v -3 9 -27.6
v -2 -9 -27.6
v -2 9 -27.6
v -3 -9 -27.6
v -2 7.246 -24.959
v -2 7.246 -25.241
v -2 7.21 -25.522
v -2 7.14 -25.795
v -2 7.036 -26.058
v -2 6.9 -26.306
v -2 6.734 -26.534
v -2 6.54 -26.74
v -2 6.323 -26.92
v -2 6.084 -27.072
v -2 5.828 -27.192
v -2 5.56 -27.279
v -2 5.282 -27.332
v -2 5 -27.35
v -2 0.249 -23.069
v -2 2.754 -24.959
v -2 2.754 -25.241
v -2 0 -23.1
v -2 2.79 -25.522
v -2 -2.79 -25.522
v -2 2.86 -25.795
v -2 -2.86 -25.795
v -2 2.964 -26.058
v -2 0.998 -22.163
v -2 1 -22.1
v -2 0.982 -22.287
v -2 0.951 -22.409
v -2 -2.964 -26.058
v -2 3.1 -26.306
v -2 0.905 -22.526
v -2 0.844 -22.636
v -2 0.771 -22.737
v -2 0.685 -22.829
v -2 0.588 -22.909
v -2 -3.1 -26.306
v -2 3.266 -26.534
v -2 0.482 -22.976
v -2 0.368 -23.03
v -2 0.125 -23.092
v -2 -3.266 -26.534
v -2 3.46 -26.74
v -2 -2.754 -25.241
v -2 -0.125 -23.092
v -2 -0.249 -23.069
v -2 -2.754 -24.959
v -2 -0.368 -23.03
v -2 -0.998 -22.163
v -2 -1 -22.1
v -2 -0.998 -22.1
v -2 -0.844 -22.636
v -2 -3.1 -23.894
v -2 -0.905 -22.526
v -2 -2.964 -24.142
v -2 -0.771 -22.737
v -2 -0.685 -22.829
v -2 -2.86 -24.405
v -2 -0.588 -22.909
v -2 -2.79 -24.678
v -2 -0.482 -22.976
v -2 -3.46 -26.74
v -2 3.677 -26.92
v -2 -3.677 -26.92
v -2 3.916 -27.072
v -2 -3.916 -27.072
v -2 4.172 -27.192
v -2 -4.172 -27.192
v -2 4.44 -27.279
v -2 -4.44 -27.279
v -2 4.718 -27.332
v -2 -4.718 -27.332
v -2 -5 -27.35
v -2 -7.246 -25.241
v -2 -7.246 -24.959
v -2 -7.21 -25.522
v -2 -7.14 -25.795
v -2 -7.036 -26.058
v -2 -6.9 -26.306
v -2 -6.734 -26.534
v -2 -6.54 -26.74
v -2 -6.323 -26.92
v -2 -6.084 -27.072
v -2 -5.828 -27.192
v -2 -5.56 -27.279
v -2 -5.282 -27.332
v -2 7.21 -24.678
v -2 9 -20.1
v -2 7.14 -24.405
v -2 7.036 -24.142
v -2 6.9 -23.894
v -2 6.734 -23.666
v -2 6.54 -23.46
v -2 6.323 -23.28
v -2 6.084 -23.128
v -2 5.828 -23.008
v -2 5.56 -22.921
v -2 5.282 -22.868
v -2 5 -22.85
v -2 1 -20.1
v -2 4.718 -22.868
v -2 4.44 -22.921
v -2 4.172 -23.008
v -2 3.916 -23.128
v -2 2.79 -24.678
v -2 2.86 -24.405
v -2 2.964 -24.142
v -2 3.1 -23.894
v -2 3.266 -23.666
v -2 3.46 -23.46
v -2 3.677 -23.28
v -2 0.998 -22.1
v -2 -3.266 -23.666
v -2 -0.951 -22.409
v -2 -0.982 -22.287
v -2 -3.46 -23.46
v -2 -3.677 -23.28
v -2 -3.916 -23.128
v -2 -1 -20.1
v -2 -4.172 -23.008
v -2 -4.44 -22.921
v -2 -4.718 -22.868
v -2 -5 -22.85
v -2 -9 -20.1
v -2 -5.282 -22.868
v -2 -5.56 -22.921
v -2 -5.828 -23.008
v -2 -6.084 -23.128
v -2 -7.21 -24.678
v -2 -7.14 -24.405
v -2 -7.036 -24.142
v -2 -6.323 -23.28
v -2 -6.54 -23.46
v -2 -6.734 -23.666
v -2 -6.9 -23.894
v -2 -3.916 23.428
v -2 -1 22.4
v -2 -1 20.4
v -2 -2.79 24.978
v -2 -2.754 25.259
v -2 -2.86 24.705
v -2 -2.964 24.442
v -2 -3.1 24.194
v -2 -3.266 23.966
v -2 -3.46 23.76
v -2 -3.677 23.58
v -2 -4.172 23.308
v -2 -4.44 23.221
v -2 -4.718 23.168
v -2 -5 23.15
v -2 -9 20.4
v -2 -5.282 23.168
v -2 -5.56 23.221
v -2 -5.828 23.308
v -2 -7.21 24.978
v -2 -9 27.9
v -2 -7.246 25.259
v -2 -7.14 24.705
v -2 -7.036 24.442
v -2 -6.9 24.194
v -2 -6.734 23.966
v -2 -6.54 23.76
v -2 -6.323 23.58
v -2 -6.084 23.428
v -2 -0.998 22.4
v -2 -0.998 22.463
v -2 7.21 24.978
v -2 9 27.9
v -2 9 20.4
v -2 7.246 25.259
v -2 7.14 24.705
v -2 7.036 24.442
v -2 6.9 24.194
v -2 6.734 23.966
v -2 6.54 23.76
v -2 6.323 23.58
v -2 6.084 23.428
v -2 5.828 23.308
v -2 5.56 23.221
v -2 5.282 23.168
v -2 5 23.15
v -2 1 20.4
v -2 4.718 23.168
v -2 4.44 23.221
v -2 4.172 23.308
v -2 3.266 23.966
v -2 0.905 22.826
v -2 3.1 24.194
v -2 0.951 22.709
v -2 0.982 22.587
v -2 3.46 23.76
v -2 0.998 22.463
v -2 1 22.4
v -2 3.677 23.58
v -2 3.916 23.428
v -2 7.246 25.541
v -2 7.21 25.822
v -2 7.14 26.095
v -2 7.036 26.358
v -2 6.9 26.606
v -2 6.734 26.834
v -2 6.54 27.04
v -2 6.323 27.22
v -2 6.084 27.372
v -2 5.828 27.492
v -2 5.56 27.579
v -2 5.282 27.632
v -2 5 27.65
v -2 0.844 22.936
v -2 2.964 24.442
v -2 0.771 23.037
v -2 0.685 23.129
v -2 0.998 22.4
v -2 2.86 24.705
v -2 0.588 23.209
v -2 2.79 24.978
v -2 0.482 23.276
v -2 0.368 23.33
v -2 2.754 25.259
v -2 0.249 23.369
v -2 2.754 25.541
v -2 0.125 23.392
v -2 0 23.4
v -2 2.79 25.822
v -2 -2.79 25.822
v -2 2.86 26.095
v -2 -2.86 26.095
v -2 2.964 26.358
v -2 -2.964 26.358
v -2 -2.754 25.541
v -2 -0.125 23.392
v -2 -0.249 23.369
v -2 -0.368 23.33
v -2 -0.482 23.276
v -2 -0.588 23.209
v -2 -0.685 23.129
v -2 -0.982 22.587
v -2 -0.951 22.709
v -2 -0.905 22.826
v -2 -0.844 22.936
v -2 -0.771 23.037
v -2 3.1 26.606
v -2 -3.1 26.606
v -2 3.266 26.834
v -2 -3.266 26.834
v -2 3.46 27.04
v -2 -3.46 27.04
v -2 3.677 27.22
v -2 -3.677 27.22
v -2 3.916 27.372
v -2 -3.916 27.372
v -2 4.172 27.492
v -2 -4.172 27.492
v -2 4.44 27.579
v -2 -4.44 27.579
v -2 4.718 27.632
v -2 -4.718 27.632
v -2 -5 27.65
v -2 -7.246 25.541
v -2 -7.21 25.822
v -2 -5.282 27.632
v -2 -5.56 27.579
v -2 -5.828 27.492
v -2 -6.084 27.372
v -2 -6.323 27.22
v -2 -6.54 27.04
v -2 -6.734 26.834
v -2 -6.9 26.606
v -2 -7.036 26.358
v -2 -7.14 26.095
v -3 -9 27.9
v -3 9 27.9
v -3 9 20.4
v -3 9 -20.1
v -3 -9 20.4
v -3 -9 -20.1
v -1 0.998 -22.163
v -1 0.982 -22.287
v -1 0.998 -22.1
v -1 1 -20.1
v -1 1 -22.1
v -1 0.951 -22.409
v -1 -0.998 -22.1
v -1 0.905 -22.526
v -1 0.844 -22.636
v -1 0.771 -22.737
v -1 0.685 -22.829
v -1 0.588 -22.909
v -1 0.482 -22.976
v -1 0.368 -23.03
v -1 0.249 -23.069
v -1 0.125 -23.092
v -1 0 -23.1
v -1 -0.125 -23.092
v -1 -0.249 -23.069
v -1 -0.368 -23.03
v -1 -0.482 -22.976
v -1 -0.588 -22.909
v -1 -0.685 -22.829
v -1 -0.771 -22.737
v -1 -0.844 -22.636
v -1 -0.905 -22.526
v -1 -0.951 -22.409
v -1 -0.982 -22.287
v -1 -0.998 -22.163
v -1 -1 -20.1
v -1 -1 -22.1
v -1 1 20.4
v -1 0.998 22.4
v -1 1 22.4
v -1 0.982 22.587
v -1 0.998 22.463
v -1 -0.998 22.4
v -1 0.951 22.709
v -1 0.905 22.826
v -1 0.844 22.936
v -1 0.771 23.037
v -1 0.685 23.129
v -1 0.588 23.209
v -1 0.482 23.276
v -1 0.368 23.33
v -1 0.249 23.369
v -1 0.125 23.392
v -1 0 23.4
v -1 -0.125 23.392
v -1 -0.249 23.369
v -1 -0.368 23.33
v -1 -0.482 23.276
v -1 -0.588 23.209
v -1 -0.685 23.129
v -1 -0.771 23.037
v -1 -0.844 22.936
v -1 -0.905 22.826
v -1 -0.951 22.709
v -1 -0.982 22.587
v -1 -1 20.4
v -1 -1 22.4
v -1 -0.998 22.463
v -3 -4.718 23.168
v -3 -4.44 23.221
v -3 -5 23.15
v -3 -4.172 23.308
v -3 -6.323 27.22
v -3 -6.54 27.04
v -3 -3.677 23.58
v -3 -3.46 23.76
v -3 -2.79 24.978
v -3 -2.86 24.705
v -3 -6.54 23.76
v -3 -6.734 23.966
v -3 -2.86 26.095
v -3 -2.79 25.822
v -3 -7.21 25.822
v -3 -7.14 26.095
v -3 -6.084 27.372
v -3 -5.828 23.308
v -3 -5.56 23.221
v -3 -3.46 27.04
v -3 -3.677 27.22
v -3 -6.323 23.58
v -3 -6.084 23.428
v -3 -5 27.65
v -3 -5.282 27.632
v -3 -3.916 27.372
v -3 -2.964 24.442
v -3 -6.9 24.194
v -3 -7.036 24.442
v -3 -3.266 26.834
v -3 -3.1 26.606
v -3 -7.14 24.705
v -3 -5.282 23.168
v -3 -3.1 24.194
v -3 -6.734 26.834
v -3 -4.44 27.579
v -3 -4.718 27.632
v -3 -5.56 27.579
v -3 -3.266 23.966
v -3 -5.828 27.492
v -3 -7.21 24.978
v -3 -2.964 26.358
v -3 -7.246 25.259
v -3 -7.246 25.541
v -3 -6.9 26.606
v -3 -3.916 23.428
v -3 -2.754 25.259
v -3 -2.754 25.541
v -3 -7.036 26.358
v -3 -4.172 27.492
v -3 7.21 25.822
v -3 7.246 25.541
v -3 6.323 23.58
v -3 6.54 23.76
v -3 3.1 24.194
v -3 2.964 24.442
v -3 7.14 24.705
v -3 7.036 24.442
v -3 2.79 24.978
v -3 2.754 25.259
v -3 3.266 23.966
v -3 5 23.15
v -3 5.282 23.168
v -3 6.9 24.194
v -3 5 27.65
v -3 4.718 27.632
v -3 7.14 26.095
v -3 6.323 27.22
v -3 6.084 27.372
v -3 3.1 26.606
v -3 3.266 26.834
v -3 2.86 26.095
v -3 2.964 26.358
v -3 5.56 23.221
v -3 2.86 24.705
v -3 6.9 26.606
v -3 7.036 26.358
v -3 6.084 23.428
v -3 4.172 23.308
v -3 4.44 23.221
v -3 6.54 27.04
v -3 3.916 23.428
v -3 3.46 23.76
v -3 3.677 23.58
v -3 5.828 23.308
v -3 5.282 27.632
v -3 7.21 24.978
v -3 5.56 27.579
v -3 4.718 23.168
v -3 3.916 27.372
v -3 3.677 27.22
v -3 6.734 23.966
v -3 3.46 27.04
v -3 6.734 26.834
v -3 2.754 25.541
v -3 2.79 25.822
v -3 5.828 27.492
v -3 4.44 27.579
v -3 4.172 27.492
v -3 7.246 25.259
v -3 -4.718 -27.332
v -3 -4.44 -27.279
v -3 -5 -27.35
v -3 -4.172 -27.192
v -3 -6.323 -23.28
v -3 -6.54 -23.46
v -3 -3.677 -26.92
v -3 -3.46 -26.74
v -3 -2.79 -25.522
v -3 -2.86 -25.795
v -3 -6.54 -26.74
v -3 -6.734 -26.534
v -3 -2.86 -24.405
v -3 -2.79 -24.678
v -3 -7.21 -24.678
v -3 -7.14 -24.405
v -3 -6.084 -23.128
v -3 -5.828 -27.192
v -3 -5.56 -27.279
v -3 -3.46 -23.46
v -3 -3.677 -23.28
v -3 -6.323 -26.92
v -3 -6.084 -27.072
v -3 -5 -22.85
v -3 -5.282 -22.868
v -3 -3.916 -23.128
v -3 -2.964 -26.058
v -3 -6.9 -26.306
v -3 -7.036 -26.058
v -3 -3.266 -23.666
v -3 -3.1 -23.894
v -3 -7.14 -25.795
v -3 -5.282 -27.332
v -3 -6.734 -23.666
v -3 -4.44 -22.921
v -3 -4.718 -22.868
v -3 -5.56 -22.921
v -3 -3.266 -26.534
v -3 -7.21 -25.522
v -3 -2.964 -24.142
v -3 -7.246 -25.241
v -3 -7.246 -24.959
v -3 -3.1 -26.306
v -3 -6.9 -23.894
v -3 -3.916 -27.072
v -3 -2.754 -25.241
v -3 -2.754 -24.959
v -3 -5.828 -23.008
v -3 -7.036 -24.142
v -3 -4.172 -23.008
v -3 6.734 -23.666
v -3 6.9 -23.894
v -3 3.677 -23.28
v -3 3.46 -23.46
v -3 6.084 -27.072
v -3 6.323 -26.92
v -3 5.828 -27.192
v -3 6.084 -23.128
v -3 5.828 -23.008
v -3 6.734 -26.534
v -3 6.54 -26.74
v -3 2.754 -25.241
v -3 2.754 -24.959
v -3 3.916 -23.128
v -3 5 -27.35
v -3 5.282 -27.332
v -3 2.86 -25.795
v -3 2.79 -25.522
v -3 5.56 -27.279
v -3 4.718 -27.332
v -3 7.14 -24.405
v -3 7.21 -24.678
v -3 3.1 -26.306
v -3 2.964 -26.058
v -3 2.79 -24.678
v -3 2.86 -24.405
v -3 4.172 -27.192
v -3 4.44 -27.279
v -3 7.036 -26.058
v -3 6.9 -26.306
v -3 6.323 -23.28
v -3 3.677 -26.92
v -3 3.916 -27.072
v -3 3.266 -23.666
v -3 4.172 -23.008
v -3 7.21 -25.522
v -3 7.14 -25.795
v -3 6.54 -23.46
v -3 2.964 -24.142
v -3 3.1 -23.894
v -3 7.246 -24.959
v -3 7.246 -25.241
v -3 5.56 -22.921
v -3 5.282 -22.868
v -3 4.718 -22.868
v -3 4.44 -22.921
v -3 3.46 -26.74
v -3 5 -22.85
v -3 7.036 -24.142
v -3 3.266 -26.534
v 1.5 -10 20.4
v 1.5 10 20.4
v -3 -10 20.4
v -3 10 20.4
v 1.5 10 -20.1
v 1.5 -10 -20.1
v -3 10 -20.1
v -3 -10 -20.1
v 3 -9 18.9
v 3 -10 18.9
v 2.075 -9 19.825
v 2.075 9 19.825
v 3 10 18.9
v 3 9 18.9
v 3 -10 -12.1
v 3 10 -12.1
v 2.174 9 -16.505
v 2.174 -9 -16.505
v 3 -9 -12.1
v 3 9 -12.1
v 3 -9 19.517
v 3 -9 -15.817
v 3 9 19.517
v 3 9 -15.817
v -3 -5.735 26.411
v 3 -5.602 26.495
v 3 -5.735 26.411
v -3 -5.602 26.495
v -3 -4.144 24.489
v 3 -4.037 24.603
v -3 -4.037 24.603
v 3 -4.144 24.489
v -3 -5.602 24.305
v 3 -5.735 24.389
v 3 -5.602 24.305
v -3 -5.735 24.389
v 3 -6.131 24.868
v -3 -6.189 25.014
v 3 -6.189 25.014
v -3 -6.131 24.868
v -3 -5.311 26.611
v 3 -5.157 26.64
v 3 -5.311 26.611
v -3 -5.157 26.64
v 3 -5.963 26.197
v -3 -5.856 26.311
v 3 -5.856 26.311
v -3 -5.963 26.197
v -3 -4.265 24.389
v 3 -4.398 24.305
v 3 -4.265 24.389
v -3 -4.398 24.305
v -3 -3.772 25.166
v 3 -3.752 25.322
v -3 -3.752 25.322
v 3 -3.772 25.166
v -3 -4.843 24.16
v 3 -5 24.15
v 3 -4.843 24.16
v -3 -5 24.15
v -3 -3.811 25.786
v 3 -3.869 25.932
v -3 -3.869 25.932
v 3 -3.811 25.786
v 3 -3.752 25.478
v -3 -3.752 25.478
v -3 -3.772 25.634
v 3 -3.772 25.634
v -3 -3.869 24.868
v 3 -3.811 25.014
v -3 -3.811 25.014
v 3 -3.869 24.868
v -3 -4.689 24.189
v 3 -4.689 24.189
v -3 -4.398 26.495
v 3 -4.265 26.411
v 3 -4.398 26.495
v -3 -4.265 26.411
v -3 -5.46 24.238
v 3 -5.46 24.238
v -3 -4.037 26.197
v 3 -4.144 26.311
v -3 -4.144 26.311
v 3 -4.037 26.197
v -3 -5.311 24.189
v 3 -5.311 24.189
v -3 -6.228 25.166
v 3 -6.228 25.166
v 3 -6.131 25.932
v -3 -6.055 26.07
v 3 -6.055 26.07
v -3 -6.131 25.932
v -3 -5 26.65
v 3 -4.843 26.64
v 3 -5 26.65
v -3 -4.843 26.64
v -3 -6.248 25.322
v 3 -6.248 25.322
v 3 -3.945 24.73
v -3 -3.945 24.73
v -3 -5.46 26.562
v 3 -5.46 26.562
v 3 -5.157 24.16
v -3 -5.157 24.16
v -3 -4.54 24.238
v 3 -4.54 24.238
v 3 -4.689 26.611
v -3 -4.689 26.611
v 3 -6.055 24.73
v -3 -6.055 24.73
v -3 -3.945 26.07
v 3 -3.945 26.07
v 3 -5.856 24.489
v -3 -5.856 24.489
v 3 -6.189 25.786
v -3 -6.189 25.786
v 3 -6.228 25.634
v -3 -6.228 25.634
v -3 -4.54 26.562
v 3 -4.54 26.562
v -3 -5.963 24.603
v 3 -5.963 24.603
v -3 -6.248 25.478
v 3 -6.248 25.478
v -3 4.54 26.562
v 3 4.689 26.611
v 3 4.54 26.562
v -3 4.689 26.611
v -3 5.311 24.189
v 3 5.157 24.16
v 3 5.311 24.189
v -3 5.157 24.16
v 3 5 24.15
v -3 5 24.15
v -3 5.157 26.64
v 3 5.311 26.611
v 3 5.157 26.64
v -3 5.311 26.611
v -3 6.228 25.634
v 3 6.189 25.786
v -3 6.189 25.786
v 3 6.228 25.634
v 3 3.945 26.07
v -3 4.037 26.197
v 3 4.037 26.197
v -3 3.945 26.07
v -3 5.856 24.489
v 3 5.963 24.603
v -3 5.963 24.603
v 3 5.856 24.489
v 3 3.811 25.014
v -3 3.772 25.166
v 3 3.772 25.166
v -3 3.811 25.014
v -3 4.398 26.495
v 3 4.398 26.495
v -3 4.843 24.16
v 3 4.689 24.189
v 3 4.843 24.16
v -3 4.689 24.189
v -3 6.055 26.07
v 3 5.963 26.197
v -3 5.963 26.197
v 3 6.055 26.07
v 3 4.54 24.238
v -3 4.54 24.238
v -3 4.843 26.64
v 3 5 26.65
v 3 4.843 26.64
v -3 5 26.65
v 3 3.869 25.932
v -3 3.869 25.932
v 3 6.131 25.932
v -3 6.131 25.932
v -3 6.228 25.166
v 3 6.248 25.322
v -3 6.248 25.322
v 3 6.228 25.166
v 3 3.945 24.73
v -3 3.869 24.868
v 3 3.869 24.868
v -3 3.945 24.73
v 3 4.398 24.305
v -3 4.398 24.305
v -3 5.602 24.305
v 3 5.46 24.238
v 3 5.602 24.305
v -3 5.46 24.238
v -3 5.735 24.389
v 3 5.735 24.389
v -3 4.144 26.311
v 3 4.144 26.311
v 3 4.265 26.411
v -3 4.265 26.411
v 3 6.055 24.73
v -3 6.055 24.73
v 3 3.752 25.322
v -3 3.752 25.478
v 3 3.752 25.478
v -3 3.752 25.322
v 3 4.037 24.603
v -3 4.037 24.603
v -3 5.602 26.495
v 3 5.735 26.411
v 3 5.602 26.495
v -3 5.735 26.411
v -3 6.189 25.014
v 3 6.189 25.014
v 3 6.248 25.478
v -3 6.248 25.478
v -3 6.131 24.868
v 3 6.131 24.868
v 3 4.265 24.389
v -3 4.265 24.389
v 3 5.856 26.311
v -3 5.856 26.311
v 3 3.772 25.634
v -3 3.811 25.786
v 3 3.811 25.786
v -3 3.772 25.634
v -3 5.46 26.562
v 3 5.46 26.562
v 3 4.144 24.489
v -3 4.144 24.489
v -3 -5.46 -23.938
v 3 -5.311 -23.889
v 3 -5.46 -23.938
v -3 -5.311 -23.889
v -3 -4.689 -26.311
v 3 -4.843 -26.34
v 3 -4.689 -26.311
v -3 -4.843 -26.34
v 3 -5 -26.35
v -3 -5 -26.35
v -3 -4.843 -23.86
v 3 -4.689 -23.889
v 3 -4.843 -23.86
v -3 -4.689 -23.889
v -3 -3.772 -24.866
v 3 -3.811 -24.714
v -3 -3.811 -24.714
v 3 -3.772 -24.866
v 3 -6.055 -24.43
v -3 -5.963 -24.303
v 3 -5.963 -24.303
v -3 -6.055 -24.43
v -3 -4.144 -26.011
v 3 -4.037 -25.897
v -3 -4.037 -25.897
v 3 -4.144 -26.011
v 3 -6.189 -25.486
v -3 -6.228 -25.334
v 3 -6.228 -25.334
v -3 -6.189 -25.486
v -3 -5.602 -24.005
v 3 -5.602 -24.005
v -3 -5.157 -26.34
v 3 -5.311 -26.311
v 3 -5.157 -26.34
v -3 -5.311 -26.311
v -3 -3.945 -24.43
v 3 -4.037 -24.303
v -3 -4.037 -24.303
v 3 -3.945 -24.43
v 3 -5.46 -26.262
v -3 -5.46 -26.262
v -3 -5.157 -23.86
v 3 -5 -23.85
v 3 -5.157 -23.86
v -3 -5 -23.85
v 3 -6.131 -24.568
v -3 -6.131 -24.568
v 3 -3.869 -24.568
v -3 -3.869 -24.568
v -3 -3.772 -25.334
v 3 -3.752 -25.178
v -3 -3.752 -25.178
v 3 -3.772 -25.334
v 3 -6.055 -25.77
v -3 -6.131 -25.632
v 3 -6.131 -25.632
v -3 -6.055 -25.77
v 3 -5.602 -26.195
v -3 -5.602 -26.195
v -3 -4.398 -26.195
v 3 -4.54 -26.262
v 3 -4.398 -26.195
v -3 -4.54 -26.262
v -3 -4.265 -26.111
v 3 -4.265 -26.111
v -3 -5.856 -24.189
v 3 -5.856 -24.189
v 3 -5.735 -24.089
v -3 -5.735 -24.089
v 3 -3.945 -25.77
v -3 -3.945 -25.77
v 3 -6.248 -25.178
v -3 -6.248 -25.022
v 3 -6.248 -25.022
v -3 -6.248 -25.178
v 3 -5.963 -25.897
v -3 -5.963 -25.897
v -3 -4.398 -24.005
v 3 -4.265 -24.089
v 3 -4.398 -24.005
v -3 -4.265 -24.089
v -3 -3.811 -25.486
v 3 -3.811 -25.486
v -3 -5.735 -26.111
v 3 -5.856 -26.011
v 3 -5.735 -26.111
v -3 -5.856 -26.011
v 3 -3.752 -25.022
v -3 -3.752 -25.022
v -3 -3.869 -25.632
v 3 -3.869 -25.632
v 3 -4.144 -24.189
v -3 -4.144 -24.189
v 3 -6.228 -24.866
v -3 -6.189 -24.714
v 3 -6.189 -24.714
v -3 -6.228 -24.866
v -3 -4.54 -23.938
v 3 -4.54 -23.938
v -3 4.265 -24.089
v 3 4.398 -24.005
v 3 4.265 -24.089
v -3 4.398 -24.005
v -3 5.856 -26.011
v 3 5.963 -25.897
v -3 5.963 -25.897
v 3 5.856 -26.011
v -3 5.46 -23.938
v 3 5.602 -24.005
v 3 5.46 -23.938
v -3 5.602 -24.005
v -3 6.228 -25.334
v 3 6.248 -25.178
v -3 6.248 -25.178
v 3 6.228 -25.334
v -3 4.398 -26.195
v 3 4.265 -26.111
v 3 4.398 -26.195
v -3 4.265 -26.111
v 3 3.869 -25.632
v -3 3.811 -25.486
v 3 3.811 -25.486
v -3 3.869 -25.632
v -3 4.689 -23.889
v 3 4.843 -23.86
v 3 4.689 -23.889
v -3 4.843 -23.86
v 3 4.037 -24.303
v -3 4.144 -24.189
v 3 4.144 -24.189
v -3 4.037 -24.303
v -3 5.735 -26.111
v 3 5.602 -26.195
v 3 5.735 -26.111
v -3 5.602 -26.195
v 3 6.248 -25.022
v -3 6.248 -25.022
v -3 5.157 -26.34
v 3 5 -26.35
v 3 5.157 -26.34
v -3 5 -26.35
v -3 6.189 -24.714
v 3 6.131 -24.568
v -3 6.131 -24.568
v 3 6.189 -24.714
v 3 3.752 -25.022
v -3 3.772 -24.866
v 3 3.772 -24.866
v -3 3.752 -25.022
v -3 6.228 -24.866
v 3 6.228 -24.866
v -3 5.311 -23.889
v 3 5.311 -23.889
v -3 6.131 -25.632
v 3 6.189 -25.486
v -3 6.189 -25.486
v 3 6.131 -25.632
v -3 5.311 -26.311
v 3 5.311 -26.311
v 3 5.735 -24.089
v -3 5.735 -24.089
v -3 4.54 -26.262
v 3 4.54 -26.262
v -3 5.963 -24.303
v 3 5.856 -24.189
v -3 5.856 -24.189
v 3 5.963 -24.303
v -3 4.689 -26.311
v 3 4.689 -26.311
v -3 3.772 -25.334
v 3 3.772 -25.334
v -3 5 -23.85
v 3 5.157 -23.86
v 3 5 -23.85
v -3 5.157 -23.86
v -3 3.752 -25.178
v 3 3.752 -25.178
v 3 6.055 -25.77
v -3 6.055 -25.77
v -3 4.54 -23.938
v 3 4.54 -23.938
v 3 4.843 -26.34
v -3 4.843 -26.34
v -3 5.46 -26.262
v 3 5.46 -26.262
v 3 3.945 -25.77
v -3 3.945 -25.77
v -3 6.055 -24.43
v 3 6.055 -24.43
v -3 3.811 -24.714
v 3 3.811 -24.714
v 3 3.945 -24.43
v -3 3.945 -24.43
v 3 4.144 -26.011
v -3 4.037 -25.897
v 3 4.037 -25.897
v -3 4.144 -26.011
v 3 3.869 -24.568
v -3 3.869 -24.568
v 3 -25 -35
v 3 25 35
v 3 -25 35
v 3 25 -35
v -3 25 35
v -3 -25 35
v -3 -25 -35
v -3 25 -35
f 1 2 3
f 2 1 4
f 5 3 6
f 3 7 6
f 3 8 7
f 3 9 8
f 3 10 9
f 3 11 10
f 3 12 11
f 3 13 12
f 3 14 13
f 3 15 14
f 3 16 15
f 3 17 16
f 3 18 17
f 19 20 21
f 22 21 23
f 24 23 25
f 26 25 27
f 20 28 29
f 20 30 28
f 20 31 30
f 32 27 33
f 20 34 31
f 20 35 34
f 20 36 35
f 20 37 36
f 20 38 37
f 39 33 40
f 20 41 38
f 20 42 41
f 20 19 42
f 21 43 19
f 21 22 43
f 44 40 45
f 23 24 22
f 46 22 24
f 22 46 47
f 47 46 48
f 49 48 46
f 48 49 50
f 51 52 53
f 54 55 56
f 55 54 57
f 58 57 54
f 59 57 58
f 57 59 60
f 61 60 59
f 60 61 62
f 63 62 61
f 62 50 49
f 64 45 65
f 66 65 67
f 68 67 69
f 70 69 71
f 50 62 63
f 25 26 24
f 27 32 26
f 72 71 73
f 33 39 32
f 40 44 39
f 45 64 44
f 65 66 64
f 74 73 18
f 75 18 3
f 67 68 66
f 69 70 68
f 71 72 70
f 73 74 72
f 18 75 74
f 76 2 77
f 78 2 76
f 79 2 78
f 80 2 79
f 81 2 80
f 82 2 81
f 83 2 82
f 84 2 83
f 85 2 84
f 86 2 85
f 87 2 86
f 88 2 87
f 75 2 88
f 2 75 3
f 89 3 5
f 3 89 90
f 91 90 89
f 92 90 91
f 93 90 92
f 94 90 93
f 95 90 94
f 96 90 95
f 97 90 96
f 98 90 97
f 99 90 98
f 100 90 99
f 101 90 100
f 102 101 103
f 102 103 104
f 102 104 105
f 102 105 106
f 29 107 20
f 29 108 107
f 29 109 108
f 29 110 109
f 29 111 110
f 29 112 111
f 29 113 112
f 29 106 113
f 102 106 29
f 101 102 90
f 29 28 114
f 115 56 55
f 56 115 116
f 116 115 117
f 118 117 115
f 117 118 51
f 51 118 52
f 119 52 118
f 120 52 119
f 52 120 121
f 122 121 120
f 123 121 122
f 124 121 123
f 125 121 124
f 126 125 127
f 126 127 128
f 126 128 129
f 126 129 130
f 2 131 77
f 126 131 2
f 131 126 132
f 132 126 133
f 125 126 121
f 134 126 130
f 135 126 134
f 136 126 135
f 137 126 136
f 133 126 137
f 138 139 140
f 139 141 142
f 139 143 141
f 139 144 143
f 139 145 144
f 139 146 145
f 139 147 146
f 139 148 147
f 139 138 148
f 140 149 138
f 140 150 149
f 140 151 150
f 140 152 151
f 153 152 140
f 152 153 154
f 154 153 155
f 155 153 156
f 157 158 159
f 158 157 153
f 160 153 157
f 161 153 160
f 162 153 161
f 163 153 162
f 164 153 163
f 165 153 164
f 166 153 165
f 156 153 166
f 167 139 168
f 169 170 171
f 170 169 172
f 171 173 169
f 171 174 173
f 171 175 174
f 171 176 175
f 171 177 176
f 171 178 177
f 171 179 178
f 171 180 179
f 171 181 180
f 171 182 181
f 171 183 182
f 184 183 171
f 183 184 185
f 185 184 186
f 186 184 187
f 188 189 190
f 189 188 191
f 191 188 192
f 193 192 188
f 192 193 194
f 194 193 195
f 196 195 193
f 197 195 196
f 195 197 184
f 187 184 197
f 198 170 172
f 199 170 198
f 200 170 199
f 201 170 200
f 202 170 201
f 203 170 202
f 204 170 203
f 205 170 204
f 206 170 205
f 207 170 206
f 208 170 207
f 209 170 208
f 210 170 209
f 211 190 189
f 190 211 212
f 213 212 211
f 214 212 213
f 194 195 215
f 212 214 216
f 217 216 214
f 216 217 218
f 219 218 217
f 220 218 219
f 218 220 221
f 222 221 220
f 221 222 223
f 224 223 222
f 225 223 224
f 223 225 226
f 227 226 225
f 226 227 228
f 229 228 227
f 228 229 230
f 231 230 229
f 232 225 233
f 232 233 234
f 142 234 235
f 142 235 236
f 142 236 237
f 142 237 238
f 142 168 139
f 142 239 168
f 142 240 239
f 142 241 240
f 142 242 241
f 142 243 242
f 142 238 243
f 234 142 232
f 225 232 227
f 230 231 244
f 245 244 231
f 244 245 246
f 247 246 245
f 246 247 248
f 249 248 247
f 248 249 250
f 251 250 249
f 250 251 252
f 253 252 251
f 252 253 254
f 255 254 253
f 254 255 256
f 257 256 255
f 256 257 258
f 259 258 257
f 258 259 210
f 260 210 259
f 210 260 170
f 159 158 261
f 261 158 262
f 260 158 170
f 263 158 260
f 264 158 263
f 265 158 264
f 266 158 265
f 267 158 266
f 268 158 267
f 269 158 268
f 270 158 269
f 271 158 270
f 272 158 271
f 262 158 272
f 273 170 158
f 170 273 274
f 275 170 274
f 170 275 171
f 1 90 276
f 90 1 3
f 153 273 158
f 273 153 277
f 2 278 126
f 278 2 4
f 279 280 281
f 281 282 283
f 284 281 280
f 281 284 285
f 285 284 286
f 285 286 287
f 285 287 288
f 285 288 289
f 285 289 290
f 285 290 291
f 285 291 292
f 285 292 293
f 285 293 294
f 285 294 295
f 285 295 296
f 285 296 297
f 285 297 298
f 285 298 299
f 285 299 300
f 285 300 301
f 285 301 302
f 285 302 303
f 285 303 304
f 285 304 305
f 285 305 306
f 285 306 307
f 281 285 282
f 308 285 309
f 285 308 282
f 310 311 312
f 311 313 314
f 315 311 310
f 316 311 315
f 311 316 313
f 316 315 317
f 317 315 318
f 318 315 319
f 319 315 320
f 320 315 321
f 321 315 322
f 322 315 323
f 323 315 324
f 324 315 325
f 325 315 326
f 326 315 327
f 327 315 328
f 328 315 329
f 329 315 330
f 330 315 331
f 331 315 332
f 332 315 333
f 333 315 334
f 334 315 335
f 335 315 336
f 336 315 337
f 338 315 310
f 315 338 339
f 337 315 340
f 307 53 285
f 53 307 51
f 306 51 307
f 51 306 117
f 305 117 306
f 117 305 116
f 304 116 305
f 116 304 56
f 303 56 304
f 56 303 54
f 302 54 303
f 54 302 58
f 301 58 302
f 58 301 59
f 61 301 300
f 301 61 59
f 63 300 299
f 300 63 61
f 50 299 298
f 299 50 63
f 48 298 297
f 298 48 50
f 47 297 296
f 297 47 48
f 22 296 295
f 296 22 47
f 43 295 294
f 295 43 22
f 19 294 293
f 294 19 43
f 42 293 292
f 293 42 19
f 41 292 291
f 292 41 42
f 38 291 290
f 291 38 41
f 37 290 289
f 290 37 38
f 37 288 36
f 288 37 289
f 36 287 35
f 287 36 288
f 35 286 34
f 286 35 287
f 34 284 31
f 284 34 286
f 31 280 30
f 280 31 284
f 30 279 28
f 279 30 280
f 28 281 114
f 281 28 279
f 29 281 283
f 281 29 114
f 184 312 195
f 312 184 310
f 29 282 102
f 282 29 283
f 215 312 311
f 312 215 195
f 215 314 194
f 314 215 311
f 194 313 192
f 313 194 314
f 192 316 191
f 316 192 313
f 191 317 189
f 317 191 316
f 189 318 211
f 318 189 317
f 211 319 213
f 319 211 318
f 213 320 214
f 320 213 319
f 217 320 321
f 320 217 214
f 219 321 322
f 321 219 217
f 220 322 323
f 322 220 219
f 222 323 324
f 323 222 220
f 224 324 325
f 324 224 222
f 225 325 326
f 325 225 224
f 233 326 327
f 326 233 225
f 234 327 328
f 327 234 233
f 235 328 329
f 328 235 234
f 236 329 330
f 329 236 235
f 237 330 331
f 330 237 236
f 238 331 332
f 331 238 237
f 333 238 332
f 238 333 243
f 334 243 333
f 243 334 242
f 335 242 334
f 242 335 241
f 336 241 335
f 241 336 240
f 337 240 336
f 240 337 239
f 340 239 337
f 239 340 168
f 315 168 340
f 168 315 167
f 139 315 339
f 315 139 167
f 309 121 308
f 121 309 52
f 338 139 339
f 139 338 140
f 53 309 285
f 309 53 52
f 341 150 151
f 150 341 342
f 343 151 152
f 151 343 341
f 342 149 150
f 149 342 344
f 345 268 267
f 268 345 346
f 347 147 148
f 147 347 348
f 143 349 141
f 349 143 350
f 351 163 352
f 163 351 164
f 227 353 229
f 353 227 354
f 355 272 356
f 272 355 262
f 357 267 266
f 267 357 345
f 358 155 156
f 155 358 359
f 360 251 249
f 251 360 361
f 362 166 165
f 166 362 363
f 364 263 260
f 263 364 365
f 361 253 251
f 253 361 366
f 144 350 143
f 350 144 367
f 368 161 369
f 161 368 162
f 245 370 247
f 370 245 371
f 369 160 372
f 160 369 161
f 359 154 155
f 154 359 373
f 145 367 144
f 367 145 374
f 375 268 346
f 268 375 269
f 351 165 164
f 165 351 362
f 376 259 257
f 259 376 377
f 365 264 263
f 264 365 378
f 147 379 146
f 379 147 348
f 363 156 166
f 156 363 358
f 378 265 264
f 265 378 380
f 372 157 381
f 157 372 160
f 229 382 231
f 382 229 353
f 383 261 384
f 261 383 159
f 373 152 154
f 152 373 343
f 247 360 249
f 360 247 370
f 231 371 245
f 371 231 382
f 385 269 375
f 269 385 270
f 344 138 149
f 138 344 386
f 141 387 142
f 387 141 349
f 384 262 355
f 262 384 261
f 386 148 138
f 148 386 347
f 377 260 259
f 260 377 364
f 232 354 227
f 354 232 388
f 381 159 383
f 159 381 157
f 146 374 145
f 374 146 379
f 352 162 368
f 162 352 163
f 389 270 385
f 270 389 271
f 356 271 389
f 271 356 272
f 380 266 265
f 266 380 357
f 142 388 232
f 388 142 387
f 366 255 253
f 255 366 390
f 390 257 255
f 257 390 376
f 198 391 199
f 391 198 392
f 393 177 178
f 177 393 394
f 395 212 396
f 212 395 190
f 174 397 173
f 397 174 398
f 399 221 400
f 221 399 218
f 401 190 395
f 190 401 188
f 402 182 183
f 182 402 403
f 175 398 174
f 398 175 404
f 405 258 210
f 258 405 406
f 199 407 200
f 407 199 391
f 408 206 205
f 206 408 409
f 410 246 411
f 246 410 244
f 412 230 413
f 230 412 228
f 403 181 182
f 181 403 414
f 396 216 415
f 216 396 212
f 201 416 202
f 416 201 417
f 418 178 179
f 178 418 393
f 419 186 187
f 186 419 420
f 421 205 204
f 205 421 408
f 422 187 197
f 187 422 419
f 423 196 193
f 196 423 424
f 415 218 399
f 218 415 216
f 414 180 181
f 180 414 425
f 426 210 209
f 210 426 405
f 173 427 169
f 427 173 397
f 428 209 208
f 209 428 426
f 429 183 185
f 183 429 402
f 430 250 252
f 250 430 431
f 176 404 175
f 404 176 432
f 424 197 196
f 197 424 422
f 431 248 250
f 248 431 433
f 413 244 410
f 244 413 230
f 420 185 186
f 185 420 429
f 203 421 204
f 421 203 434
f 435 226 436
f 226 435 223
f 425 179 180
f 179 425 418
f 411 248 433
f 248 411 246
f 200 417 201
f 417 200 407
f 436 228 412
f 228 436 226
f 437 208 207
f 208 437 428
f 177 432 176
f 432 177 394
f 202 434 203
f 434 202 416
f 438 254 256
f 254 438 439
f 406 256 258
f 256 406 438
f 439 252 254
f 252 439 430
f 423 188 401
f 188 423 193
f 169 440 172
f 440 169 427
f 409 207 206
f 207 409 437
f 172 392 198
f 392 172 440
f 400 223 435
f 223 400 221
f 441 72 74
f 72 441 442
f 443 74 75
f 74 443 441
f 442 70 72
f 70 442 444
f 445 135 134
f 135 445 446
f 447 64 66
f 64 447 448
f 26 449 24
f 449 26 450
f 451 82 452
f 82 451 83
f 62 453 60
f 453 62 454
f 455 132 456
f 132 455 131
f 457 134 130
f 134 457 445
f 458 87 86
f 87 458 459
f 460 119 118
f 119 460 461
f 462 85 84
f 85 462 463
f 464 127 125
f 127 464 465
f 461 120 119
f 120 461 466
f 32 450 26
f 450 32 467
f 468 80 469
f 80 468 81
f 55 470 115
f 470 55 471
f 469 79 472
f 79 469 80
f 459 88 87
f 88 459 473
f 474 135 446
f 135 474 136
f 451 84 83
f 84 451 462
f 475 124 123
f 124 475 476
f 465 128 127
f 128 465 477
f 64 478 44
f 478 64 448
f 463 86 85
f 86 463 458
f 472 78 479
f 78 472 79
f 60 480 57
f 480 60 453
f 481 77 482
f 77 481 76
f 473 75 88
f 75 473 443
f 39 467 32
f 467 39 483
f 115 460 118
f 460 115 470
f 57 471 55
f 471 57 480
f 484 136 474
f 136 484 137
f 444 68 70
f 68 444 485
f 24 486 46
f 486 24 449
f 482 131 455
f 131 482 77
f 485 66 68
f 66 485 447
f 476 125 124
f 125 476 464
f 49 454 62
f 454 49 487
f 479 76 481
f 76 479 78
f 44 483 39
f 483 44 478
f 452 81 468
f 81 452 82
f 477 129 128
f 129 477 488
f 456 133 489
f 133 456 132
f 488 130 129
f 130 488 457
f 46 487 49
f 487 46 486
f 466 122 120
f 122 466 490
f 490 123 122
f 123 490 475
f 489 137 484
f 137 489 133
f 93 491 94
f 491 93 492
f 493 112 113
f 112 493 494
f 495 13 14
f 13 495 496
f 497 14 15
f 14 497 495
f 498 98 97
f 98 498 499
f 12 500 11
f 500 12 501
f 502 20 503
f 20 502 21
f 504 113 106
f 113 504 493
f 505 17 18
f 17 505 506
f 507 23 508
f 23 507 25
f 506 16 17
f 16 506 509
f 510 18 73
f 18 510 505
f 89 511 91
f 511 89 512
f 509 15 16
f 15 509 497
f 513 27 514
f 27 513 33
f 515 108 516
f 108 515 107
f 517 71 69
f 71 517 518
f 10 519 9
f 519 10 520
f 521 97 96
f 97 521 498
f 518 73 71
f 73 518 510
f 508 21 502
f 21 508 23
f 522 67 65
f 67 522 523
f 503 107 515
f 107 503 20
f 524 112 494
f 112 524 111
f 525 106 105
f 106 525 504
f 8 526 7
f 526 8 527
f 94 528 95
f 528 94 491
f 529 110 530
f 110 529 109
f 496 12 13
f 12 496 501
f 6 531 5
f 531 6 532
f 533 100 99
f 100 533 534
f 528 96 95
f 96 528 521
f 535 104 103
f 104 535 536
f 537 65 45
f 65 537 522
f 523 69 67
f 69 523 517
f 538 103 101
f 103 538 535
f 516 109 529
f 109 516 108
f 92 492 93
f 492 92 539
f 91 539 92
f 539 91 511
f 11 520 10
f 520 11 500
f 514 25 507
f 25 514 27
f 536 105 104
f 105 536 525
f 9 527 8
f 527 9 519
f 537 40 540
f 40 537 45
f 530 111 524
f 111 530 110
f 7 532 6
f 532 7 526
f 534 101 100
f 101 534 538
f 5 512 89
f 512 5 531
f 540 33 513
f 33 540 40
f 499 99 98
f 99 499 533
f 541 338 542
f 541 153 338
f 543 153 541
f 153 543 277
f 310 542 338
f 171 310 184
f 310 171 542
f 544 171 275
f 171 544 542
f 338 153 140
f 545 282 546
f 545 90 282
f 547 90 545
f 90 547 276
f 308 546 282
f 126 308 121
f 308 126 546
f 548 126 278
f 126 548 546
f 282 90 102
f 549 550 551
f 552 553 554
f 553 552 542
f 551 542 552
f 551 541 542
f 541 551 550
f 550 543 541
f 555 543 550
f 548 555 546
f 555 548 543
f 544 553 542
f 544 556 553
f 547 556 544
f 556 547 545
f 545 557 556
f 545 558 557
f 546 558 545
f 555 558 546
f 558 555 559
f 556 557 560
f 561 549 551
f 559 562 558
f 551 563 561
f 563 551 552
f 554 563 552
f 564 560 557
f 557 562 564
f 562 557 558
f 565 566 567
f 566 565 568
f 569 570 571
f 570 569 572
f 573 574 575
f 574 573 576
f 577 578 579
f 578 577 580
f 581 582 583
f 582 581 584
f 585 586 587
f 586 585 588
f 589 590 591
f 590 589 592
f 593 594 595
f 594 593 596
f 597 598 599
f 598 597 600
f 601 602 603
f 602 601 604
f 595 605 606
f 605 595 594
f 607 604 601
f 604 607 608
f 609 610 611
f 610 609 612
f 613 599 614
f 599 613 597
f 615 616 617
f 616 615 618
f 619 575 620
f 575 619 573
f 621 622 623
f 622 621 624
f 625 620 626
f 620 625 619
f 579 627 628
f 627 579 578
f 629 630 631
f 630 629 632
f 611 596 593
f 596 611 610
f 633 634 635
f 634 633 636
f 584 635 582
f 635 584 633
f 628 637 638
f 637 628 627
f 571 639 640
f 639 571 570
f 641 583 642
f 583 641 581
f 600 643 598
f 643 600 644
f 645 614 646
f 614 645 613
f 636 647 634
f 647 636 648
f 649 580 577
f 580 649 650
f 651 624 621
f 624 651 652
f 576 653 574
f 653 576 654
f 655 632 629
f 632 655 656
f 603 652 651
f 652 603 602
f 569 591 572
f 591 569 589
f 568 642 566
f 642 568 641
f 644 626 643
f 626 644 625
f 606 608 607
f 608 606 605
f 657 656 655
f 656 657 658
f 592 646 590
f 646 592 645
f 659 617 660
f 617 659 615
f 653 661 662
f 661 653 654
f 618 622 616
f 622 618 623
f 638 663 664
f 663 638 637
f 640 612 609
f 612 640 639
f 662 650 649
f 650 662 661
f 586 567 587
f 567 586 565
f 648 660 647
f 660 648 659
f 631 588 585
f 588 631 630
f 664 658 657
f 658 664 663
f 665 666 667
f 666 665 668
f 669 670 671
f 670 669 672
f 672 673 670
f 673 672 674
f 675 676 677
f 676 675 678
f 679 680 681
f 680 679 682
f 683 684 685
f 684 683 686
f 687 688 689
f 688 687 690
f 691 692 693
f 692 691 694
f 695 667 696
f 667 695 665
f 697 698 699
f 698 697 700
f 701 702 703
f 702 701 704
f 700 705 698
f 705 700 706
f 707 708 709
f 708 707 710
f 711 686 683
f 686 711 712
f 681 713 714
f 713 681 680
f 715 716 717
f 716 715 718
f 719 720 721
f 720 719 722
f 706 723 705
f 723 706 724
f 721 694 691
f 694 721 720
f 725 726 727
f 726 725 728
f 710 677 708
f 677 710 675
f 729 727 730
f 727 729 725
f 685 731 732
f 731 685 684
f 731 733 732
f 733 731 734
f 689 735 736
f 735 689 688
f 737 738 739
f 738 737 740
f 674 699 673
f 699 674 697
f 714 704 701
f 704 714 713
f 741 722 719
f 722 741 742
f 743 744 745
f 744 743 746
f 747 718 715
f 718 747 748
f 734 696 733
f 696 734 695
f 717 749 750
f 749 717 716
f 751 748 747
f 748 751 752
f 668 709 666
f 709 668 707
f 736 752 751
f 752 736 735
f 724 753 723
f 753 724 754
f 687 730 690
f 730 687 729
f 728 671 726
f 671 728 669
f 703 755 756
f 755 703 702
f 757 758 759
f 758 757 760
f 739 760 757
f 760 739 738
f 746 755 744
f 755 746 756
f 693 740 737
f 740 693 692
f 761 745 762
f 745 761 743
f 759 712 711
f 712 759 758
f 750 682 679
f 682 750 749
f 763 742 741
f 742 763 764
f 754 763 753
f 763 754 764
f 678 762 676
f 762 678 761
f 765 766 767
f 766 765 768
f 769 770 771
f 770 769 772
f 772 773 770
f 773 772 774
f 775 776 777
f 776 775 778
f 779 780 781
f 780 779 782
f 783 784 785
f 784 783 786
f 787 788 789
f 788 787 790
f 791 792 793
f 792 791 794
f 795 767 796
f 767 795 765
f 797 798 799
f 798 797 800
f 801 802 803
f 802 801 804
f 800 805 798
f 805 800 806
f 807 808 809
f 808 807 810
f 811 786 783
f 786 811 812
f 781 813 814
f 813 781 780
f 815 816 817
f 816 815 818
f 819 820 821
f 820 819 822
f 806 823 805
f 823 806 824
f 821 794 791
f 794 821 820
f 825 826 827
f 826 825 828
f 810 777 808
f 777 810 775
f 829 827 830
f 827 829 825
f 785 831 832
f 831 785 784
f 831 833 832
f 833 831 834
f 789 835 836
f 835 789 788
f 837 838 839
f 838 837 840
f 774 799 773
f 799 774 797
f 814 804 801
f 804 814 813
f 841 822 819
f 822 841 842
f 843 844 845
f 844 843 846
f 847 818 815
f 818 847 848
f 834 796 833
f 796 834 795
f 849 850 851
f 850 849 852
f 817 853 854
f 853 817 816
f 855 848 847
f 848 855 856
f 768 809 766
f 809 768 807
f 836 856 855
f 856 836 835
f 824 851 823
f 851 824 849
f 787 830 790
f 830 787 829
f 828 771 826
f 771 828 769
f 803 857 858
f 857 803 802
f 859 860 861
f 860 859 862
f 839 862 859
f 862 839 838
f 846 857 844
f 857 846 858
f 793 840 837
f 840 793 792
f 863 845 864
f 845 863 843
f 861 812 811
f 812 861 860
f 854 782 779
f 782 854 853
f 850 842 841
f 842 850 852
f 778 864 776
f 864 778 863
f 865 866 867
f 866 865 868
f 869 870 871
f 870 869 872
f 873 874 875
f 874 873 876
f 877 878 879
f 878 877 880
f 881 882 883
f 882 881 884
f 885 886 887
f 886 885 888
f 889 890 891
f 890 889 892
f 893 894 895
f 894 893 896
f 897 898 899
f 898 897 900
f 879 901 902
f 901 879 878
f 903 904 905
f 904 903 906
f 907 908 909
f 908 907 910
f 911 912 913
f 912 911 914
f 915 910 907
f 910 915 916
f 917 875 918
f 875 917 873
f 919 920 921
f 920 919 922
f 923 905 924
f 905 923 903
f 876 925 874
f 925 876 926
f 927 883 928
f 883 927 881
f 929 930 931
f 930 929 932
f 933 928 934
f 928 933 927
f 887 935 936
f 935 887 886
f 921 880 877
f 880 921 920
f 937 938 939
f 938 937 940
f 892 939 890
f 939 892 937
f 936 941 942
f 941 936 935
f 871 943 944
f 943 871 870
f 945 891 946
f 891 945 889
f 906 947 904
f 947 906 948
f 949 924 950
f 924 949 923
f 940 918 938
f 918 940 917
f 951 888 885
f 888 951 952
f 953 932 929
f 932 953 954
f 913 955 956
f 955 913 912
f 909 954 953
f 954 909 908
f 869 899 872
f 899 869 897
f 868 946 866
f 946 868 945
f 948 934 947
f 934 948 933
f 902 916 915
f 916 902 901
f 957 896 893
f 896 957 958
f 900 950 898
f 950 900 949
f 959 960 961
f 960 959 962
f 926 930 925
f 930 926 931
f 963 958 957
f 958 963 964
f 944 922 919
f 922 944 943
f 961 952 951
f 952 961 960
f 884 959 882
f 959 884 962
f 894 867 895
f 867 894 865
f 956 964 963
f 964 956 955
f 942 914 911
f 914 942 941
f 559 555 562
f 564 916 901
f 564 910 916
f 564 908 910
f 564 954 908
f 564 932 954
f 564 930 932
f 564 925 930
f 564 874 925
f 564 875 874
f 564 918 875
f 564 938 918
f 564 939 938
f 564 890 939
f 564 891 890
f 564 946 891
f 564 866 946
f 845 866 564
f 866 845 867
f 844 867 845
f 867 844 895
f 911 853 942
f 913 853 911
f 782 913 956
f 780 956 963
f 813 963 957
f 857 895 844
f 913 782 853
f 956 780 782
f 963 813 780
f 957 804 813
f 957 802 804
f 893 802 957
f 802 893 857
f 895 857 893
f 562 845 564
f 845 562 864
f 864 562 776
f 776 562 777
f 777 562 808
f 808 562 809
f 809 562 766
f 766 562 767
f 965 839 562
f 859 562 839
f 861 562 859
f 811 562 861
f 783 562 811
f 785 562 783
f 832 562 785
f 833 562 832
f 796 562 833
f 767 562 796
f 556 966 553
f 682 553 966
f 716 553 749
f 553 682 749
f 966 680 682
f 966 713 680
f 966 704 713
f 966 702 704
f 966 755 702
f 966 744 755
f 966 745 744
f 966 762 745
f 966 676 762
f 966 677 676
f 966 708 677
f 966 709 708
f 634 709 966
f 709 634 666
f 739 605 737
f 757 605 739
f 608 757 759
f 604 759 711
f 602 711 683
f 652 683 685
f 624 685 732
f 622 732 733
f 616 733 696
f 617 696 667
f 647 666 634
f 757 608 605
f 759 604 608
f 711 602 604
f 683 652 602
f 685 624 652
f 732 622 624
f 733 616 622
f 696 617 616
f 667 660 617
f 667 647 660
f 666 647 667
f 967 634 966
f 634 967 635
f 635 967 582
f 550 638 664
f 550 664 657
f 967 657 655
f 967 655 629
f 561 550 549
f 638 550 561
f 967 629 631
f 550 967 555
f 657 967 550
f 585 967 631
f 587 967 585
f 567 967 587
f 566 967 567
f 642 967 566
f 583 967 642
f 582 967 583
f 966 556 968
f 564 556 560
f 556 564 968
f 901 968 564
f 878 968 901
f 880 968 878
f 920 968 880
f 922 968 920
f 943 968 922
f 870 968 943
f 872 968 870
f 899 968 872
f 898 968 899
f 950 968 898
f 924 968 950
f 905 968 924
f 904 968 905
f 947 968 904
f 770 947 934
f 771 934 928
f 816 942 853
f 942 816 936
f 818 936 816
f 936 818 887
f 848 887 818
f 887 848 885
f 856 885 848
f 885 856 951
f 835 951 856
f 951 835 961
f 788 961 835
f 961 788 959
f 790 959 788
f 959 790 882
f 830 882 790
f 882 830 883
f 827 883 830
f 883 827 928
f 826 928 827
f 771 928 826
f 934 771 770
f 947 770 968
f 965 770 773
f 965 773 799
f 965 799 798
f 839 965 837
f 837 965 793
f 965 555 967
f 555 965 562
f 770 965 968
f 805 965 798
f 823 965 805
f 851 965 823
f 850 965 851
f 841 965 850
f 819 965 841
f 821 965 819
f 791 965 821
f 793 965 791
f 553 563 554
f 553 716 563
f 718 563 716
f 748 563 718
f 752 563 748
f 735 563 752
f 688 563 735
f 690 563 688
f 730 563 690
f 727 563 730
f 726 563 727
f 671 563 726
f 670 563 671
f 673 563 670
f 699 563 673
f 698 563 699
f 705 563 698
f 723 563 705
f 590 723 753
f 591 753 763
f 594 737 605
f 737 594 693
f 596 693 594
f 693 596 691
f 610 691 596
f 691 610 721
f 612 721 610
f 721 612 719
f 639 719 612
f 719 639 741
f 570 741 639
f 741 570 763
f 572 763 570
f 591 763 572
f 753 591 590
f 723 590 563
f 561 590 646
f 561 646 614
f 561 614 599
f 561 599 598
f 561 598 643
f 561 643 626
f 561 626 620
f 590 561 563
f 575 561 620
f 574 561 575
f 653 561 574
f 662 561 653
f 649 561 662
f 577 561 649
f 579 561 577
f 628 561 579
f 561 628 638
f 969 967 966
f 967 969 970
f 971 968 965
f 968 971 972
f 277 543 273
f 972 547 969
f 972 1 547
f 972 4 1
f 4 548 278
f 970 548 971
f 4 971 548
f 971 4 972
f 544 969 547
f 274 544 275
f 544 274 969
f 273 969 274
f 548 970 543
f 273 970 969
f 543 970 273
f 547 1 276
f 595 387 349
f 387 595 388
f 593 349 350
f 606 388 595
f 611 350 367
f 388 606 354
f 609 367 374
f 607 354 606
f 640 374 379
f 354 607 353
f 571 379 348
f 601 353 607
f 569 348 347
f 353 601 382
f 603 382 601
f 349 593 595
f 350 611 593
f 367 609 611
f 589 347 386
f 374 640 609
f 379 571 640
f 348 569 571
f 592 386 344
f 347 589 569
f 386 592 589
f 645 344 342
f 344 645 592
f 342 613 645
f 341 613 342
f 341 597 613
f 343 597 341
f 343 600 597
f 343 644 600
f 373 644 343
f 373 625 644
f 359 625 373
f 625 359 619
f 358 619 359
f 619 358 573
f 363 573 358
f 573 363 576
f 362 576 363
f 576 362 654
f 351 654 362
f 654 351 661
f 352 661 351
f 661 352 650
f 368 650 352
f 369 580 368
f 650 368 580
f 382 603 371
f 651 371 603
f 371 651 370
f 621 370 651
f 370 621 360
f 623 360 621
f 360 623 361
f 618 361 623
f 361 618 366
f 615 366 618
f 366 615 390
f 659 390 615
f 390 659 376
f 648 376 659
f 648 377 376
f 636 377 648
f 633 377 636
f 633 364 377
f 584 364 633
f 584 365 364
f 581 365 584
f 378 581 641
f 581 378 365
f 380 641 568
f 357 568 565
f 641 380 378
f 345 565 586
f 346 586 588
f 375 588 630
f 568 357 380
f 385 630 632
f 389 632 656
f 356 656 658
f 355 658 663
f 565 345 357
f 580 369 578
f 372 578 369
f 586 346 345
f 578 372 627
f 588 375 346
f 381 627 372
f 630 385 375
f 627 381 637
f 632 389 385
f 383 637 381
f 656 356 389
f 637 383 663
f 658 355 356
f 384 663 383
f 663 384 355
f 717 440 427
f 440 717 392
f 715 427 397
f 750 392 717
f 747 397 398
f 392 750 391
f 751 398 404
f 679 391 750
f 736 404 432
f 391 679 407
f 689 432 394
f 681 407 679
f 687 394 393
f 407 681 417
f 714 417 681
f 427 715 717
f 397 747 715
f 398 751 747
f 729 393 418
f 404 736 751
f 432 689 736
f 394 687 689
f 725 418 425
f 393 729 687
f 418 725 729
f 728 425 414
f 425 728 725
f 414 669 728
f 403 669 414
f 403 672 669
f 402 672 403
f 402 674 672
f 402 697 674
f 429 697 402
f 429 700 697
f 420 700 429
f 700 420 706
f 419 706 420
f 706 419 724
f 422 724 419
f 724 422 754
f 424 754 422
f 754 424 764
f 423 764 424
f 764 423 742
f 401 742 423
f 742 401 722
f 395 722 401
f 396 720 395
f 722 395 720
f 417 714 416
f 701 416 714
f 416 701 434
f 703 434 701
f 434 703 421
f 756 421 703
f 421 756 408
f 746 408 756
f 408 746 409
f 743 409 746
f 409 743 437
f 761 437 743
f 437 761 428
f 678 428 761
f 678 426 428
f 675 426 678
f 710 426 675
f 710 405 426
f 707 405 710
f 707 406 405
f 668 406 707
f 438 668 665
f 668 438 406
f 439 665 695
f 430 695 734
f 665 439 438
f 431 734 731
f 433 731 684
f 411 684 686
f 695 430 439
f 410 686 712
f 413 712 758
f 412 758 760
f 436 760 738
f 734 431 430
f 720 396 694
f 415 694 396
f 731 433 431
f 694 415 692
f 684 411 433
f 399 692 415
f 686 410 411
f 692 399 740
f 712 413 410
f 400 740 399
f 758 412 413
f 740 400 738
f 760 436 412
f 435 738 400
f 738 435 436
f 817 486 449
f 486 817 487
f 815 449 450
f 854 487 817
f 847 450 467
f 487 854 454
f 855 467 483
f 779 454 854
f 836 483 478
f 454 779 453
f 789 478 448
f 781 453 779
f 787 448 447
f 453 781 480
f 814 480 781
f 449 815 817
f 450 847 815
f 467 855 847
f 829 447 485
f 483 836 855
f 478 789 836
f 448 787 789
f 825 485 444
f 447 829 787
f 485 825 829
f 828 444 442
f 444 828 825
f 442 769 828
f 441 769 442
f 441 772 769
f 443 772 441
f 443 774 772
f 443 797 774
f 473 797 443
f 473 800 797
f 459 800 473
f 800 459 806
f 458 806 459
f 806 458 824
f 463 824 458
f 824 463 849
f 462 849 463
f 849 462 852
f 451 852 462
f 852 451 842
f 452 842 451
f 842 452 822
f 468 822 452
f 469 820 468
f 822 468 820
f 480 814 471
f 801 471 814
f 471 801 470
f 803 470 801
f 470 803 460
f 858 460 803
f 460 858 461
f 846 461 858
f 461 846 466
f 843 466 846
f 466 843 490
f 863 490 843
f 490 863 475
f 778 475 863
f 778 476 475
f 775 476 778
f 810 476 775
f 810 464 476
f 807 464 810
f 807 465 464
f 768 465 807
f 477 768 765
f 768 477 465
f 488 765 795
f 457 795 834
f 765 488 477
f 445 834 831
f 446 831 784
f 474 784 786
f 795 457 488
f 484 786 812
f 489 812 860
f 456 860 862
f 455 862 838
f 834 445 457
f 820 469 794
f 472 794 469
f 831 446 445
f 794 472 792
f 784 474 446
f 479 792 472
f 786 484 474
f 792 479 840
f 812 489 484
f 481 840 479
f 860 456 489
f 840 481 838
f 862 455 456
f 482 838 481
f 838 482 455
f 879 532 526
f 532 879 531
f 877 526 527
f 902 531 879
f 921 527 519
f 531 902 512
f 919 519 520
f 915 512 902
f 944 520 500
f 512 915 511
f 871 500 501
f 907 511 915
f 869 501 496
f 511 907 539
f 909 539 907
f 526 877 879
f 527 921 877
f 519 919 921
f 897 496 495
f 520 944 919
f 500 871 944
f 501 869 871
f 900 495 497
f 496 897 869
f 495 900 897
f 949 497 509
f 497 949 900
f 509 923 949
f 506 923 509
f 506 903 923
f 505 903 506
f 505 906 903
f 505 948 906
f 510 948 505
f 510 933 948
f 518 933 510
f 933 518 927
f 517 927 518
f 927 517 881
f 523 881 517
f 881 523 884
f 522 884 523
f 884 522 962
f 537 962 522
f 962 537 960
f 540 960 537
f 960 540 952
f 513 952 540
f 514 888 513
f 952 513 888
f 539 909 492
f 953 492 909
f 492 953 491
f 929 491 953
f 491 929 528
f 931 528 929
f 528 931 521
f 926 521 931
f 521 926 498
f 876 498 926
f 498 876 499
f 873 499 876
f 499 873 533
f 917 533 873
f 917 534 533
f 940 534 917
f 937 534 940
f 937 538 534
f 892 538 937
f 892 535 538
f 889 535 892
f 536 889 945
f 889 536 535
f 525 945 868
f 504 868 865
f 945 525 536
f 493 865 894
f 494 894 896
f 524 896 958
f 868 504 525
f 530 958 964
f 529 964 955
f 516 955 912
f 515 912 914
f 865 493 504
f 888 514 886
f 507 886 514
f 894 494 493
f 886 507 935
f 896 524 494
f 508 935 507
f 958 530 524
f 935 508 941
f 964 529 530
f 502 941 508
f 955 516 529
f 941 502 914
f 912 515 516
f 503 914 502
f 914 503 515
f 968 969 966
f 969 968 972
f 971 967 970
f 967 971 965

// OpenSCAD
/**
 * @author OlivierLD
 * 
 * A test, a stand for a servoParallax900_00005()
 */
use <../mechanical.parts.scad>

servoXOffset = 29.1; // From the servo's specs.
servoZOffset = 10;
standThickness = 6;

deeper = 1;

difference() {
	cube(size=[standThickness, 50, 70], center=true);
	translate([- (standThickness / 2) - (servoXOffset) + deeper, 0, servoZOffset]) {
		rotate([0, 90, 0]) {
			servoParallax900_00005();
			servoParallax900_00005(drillPattern=true, drillDiam=2.5);
		}
	}
}
